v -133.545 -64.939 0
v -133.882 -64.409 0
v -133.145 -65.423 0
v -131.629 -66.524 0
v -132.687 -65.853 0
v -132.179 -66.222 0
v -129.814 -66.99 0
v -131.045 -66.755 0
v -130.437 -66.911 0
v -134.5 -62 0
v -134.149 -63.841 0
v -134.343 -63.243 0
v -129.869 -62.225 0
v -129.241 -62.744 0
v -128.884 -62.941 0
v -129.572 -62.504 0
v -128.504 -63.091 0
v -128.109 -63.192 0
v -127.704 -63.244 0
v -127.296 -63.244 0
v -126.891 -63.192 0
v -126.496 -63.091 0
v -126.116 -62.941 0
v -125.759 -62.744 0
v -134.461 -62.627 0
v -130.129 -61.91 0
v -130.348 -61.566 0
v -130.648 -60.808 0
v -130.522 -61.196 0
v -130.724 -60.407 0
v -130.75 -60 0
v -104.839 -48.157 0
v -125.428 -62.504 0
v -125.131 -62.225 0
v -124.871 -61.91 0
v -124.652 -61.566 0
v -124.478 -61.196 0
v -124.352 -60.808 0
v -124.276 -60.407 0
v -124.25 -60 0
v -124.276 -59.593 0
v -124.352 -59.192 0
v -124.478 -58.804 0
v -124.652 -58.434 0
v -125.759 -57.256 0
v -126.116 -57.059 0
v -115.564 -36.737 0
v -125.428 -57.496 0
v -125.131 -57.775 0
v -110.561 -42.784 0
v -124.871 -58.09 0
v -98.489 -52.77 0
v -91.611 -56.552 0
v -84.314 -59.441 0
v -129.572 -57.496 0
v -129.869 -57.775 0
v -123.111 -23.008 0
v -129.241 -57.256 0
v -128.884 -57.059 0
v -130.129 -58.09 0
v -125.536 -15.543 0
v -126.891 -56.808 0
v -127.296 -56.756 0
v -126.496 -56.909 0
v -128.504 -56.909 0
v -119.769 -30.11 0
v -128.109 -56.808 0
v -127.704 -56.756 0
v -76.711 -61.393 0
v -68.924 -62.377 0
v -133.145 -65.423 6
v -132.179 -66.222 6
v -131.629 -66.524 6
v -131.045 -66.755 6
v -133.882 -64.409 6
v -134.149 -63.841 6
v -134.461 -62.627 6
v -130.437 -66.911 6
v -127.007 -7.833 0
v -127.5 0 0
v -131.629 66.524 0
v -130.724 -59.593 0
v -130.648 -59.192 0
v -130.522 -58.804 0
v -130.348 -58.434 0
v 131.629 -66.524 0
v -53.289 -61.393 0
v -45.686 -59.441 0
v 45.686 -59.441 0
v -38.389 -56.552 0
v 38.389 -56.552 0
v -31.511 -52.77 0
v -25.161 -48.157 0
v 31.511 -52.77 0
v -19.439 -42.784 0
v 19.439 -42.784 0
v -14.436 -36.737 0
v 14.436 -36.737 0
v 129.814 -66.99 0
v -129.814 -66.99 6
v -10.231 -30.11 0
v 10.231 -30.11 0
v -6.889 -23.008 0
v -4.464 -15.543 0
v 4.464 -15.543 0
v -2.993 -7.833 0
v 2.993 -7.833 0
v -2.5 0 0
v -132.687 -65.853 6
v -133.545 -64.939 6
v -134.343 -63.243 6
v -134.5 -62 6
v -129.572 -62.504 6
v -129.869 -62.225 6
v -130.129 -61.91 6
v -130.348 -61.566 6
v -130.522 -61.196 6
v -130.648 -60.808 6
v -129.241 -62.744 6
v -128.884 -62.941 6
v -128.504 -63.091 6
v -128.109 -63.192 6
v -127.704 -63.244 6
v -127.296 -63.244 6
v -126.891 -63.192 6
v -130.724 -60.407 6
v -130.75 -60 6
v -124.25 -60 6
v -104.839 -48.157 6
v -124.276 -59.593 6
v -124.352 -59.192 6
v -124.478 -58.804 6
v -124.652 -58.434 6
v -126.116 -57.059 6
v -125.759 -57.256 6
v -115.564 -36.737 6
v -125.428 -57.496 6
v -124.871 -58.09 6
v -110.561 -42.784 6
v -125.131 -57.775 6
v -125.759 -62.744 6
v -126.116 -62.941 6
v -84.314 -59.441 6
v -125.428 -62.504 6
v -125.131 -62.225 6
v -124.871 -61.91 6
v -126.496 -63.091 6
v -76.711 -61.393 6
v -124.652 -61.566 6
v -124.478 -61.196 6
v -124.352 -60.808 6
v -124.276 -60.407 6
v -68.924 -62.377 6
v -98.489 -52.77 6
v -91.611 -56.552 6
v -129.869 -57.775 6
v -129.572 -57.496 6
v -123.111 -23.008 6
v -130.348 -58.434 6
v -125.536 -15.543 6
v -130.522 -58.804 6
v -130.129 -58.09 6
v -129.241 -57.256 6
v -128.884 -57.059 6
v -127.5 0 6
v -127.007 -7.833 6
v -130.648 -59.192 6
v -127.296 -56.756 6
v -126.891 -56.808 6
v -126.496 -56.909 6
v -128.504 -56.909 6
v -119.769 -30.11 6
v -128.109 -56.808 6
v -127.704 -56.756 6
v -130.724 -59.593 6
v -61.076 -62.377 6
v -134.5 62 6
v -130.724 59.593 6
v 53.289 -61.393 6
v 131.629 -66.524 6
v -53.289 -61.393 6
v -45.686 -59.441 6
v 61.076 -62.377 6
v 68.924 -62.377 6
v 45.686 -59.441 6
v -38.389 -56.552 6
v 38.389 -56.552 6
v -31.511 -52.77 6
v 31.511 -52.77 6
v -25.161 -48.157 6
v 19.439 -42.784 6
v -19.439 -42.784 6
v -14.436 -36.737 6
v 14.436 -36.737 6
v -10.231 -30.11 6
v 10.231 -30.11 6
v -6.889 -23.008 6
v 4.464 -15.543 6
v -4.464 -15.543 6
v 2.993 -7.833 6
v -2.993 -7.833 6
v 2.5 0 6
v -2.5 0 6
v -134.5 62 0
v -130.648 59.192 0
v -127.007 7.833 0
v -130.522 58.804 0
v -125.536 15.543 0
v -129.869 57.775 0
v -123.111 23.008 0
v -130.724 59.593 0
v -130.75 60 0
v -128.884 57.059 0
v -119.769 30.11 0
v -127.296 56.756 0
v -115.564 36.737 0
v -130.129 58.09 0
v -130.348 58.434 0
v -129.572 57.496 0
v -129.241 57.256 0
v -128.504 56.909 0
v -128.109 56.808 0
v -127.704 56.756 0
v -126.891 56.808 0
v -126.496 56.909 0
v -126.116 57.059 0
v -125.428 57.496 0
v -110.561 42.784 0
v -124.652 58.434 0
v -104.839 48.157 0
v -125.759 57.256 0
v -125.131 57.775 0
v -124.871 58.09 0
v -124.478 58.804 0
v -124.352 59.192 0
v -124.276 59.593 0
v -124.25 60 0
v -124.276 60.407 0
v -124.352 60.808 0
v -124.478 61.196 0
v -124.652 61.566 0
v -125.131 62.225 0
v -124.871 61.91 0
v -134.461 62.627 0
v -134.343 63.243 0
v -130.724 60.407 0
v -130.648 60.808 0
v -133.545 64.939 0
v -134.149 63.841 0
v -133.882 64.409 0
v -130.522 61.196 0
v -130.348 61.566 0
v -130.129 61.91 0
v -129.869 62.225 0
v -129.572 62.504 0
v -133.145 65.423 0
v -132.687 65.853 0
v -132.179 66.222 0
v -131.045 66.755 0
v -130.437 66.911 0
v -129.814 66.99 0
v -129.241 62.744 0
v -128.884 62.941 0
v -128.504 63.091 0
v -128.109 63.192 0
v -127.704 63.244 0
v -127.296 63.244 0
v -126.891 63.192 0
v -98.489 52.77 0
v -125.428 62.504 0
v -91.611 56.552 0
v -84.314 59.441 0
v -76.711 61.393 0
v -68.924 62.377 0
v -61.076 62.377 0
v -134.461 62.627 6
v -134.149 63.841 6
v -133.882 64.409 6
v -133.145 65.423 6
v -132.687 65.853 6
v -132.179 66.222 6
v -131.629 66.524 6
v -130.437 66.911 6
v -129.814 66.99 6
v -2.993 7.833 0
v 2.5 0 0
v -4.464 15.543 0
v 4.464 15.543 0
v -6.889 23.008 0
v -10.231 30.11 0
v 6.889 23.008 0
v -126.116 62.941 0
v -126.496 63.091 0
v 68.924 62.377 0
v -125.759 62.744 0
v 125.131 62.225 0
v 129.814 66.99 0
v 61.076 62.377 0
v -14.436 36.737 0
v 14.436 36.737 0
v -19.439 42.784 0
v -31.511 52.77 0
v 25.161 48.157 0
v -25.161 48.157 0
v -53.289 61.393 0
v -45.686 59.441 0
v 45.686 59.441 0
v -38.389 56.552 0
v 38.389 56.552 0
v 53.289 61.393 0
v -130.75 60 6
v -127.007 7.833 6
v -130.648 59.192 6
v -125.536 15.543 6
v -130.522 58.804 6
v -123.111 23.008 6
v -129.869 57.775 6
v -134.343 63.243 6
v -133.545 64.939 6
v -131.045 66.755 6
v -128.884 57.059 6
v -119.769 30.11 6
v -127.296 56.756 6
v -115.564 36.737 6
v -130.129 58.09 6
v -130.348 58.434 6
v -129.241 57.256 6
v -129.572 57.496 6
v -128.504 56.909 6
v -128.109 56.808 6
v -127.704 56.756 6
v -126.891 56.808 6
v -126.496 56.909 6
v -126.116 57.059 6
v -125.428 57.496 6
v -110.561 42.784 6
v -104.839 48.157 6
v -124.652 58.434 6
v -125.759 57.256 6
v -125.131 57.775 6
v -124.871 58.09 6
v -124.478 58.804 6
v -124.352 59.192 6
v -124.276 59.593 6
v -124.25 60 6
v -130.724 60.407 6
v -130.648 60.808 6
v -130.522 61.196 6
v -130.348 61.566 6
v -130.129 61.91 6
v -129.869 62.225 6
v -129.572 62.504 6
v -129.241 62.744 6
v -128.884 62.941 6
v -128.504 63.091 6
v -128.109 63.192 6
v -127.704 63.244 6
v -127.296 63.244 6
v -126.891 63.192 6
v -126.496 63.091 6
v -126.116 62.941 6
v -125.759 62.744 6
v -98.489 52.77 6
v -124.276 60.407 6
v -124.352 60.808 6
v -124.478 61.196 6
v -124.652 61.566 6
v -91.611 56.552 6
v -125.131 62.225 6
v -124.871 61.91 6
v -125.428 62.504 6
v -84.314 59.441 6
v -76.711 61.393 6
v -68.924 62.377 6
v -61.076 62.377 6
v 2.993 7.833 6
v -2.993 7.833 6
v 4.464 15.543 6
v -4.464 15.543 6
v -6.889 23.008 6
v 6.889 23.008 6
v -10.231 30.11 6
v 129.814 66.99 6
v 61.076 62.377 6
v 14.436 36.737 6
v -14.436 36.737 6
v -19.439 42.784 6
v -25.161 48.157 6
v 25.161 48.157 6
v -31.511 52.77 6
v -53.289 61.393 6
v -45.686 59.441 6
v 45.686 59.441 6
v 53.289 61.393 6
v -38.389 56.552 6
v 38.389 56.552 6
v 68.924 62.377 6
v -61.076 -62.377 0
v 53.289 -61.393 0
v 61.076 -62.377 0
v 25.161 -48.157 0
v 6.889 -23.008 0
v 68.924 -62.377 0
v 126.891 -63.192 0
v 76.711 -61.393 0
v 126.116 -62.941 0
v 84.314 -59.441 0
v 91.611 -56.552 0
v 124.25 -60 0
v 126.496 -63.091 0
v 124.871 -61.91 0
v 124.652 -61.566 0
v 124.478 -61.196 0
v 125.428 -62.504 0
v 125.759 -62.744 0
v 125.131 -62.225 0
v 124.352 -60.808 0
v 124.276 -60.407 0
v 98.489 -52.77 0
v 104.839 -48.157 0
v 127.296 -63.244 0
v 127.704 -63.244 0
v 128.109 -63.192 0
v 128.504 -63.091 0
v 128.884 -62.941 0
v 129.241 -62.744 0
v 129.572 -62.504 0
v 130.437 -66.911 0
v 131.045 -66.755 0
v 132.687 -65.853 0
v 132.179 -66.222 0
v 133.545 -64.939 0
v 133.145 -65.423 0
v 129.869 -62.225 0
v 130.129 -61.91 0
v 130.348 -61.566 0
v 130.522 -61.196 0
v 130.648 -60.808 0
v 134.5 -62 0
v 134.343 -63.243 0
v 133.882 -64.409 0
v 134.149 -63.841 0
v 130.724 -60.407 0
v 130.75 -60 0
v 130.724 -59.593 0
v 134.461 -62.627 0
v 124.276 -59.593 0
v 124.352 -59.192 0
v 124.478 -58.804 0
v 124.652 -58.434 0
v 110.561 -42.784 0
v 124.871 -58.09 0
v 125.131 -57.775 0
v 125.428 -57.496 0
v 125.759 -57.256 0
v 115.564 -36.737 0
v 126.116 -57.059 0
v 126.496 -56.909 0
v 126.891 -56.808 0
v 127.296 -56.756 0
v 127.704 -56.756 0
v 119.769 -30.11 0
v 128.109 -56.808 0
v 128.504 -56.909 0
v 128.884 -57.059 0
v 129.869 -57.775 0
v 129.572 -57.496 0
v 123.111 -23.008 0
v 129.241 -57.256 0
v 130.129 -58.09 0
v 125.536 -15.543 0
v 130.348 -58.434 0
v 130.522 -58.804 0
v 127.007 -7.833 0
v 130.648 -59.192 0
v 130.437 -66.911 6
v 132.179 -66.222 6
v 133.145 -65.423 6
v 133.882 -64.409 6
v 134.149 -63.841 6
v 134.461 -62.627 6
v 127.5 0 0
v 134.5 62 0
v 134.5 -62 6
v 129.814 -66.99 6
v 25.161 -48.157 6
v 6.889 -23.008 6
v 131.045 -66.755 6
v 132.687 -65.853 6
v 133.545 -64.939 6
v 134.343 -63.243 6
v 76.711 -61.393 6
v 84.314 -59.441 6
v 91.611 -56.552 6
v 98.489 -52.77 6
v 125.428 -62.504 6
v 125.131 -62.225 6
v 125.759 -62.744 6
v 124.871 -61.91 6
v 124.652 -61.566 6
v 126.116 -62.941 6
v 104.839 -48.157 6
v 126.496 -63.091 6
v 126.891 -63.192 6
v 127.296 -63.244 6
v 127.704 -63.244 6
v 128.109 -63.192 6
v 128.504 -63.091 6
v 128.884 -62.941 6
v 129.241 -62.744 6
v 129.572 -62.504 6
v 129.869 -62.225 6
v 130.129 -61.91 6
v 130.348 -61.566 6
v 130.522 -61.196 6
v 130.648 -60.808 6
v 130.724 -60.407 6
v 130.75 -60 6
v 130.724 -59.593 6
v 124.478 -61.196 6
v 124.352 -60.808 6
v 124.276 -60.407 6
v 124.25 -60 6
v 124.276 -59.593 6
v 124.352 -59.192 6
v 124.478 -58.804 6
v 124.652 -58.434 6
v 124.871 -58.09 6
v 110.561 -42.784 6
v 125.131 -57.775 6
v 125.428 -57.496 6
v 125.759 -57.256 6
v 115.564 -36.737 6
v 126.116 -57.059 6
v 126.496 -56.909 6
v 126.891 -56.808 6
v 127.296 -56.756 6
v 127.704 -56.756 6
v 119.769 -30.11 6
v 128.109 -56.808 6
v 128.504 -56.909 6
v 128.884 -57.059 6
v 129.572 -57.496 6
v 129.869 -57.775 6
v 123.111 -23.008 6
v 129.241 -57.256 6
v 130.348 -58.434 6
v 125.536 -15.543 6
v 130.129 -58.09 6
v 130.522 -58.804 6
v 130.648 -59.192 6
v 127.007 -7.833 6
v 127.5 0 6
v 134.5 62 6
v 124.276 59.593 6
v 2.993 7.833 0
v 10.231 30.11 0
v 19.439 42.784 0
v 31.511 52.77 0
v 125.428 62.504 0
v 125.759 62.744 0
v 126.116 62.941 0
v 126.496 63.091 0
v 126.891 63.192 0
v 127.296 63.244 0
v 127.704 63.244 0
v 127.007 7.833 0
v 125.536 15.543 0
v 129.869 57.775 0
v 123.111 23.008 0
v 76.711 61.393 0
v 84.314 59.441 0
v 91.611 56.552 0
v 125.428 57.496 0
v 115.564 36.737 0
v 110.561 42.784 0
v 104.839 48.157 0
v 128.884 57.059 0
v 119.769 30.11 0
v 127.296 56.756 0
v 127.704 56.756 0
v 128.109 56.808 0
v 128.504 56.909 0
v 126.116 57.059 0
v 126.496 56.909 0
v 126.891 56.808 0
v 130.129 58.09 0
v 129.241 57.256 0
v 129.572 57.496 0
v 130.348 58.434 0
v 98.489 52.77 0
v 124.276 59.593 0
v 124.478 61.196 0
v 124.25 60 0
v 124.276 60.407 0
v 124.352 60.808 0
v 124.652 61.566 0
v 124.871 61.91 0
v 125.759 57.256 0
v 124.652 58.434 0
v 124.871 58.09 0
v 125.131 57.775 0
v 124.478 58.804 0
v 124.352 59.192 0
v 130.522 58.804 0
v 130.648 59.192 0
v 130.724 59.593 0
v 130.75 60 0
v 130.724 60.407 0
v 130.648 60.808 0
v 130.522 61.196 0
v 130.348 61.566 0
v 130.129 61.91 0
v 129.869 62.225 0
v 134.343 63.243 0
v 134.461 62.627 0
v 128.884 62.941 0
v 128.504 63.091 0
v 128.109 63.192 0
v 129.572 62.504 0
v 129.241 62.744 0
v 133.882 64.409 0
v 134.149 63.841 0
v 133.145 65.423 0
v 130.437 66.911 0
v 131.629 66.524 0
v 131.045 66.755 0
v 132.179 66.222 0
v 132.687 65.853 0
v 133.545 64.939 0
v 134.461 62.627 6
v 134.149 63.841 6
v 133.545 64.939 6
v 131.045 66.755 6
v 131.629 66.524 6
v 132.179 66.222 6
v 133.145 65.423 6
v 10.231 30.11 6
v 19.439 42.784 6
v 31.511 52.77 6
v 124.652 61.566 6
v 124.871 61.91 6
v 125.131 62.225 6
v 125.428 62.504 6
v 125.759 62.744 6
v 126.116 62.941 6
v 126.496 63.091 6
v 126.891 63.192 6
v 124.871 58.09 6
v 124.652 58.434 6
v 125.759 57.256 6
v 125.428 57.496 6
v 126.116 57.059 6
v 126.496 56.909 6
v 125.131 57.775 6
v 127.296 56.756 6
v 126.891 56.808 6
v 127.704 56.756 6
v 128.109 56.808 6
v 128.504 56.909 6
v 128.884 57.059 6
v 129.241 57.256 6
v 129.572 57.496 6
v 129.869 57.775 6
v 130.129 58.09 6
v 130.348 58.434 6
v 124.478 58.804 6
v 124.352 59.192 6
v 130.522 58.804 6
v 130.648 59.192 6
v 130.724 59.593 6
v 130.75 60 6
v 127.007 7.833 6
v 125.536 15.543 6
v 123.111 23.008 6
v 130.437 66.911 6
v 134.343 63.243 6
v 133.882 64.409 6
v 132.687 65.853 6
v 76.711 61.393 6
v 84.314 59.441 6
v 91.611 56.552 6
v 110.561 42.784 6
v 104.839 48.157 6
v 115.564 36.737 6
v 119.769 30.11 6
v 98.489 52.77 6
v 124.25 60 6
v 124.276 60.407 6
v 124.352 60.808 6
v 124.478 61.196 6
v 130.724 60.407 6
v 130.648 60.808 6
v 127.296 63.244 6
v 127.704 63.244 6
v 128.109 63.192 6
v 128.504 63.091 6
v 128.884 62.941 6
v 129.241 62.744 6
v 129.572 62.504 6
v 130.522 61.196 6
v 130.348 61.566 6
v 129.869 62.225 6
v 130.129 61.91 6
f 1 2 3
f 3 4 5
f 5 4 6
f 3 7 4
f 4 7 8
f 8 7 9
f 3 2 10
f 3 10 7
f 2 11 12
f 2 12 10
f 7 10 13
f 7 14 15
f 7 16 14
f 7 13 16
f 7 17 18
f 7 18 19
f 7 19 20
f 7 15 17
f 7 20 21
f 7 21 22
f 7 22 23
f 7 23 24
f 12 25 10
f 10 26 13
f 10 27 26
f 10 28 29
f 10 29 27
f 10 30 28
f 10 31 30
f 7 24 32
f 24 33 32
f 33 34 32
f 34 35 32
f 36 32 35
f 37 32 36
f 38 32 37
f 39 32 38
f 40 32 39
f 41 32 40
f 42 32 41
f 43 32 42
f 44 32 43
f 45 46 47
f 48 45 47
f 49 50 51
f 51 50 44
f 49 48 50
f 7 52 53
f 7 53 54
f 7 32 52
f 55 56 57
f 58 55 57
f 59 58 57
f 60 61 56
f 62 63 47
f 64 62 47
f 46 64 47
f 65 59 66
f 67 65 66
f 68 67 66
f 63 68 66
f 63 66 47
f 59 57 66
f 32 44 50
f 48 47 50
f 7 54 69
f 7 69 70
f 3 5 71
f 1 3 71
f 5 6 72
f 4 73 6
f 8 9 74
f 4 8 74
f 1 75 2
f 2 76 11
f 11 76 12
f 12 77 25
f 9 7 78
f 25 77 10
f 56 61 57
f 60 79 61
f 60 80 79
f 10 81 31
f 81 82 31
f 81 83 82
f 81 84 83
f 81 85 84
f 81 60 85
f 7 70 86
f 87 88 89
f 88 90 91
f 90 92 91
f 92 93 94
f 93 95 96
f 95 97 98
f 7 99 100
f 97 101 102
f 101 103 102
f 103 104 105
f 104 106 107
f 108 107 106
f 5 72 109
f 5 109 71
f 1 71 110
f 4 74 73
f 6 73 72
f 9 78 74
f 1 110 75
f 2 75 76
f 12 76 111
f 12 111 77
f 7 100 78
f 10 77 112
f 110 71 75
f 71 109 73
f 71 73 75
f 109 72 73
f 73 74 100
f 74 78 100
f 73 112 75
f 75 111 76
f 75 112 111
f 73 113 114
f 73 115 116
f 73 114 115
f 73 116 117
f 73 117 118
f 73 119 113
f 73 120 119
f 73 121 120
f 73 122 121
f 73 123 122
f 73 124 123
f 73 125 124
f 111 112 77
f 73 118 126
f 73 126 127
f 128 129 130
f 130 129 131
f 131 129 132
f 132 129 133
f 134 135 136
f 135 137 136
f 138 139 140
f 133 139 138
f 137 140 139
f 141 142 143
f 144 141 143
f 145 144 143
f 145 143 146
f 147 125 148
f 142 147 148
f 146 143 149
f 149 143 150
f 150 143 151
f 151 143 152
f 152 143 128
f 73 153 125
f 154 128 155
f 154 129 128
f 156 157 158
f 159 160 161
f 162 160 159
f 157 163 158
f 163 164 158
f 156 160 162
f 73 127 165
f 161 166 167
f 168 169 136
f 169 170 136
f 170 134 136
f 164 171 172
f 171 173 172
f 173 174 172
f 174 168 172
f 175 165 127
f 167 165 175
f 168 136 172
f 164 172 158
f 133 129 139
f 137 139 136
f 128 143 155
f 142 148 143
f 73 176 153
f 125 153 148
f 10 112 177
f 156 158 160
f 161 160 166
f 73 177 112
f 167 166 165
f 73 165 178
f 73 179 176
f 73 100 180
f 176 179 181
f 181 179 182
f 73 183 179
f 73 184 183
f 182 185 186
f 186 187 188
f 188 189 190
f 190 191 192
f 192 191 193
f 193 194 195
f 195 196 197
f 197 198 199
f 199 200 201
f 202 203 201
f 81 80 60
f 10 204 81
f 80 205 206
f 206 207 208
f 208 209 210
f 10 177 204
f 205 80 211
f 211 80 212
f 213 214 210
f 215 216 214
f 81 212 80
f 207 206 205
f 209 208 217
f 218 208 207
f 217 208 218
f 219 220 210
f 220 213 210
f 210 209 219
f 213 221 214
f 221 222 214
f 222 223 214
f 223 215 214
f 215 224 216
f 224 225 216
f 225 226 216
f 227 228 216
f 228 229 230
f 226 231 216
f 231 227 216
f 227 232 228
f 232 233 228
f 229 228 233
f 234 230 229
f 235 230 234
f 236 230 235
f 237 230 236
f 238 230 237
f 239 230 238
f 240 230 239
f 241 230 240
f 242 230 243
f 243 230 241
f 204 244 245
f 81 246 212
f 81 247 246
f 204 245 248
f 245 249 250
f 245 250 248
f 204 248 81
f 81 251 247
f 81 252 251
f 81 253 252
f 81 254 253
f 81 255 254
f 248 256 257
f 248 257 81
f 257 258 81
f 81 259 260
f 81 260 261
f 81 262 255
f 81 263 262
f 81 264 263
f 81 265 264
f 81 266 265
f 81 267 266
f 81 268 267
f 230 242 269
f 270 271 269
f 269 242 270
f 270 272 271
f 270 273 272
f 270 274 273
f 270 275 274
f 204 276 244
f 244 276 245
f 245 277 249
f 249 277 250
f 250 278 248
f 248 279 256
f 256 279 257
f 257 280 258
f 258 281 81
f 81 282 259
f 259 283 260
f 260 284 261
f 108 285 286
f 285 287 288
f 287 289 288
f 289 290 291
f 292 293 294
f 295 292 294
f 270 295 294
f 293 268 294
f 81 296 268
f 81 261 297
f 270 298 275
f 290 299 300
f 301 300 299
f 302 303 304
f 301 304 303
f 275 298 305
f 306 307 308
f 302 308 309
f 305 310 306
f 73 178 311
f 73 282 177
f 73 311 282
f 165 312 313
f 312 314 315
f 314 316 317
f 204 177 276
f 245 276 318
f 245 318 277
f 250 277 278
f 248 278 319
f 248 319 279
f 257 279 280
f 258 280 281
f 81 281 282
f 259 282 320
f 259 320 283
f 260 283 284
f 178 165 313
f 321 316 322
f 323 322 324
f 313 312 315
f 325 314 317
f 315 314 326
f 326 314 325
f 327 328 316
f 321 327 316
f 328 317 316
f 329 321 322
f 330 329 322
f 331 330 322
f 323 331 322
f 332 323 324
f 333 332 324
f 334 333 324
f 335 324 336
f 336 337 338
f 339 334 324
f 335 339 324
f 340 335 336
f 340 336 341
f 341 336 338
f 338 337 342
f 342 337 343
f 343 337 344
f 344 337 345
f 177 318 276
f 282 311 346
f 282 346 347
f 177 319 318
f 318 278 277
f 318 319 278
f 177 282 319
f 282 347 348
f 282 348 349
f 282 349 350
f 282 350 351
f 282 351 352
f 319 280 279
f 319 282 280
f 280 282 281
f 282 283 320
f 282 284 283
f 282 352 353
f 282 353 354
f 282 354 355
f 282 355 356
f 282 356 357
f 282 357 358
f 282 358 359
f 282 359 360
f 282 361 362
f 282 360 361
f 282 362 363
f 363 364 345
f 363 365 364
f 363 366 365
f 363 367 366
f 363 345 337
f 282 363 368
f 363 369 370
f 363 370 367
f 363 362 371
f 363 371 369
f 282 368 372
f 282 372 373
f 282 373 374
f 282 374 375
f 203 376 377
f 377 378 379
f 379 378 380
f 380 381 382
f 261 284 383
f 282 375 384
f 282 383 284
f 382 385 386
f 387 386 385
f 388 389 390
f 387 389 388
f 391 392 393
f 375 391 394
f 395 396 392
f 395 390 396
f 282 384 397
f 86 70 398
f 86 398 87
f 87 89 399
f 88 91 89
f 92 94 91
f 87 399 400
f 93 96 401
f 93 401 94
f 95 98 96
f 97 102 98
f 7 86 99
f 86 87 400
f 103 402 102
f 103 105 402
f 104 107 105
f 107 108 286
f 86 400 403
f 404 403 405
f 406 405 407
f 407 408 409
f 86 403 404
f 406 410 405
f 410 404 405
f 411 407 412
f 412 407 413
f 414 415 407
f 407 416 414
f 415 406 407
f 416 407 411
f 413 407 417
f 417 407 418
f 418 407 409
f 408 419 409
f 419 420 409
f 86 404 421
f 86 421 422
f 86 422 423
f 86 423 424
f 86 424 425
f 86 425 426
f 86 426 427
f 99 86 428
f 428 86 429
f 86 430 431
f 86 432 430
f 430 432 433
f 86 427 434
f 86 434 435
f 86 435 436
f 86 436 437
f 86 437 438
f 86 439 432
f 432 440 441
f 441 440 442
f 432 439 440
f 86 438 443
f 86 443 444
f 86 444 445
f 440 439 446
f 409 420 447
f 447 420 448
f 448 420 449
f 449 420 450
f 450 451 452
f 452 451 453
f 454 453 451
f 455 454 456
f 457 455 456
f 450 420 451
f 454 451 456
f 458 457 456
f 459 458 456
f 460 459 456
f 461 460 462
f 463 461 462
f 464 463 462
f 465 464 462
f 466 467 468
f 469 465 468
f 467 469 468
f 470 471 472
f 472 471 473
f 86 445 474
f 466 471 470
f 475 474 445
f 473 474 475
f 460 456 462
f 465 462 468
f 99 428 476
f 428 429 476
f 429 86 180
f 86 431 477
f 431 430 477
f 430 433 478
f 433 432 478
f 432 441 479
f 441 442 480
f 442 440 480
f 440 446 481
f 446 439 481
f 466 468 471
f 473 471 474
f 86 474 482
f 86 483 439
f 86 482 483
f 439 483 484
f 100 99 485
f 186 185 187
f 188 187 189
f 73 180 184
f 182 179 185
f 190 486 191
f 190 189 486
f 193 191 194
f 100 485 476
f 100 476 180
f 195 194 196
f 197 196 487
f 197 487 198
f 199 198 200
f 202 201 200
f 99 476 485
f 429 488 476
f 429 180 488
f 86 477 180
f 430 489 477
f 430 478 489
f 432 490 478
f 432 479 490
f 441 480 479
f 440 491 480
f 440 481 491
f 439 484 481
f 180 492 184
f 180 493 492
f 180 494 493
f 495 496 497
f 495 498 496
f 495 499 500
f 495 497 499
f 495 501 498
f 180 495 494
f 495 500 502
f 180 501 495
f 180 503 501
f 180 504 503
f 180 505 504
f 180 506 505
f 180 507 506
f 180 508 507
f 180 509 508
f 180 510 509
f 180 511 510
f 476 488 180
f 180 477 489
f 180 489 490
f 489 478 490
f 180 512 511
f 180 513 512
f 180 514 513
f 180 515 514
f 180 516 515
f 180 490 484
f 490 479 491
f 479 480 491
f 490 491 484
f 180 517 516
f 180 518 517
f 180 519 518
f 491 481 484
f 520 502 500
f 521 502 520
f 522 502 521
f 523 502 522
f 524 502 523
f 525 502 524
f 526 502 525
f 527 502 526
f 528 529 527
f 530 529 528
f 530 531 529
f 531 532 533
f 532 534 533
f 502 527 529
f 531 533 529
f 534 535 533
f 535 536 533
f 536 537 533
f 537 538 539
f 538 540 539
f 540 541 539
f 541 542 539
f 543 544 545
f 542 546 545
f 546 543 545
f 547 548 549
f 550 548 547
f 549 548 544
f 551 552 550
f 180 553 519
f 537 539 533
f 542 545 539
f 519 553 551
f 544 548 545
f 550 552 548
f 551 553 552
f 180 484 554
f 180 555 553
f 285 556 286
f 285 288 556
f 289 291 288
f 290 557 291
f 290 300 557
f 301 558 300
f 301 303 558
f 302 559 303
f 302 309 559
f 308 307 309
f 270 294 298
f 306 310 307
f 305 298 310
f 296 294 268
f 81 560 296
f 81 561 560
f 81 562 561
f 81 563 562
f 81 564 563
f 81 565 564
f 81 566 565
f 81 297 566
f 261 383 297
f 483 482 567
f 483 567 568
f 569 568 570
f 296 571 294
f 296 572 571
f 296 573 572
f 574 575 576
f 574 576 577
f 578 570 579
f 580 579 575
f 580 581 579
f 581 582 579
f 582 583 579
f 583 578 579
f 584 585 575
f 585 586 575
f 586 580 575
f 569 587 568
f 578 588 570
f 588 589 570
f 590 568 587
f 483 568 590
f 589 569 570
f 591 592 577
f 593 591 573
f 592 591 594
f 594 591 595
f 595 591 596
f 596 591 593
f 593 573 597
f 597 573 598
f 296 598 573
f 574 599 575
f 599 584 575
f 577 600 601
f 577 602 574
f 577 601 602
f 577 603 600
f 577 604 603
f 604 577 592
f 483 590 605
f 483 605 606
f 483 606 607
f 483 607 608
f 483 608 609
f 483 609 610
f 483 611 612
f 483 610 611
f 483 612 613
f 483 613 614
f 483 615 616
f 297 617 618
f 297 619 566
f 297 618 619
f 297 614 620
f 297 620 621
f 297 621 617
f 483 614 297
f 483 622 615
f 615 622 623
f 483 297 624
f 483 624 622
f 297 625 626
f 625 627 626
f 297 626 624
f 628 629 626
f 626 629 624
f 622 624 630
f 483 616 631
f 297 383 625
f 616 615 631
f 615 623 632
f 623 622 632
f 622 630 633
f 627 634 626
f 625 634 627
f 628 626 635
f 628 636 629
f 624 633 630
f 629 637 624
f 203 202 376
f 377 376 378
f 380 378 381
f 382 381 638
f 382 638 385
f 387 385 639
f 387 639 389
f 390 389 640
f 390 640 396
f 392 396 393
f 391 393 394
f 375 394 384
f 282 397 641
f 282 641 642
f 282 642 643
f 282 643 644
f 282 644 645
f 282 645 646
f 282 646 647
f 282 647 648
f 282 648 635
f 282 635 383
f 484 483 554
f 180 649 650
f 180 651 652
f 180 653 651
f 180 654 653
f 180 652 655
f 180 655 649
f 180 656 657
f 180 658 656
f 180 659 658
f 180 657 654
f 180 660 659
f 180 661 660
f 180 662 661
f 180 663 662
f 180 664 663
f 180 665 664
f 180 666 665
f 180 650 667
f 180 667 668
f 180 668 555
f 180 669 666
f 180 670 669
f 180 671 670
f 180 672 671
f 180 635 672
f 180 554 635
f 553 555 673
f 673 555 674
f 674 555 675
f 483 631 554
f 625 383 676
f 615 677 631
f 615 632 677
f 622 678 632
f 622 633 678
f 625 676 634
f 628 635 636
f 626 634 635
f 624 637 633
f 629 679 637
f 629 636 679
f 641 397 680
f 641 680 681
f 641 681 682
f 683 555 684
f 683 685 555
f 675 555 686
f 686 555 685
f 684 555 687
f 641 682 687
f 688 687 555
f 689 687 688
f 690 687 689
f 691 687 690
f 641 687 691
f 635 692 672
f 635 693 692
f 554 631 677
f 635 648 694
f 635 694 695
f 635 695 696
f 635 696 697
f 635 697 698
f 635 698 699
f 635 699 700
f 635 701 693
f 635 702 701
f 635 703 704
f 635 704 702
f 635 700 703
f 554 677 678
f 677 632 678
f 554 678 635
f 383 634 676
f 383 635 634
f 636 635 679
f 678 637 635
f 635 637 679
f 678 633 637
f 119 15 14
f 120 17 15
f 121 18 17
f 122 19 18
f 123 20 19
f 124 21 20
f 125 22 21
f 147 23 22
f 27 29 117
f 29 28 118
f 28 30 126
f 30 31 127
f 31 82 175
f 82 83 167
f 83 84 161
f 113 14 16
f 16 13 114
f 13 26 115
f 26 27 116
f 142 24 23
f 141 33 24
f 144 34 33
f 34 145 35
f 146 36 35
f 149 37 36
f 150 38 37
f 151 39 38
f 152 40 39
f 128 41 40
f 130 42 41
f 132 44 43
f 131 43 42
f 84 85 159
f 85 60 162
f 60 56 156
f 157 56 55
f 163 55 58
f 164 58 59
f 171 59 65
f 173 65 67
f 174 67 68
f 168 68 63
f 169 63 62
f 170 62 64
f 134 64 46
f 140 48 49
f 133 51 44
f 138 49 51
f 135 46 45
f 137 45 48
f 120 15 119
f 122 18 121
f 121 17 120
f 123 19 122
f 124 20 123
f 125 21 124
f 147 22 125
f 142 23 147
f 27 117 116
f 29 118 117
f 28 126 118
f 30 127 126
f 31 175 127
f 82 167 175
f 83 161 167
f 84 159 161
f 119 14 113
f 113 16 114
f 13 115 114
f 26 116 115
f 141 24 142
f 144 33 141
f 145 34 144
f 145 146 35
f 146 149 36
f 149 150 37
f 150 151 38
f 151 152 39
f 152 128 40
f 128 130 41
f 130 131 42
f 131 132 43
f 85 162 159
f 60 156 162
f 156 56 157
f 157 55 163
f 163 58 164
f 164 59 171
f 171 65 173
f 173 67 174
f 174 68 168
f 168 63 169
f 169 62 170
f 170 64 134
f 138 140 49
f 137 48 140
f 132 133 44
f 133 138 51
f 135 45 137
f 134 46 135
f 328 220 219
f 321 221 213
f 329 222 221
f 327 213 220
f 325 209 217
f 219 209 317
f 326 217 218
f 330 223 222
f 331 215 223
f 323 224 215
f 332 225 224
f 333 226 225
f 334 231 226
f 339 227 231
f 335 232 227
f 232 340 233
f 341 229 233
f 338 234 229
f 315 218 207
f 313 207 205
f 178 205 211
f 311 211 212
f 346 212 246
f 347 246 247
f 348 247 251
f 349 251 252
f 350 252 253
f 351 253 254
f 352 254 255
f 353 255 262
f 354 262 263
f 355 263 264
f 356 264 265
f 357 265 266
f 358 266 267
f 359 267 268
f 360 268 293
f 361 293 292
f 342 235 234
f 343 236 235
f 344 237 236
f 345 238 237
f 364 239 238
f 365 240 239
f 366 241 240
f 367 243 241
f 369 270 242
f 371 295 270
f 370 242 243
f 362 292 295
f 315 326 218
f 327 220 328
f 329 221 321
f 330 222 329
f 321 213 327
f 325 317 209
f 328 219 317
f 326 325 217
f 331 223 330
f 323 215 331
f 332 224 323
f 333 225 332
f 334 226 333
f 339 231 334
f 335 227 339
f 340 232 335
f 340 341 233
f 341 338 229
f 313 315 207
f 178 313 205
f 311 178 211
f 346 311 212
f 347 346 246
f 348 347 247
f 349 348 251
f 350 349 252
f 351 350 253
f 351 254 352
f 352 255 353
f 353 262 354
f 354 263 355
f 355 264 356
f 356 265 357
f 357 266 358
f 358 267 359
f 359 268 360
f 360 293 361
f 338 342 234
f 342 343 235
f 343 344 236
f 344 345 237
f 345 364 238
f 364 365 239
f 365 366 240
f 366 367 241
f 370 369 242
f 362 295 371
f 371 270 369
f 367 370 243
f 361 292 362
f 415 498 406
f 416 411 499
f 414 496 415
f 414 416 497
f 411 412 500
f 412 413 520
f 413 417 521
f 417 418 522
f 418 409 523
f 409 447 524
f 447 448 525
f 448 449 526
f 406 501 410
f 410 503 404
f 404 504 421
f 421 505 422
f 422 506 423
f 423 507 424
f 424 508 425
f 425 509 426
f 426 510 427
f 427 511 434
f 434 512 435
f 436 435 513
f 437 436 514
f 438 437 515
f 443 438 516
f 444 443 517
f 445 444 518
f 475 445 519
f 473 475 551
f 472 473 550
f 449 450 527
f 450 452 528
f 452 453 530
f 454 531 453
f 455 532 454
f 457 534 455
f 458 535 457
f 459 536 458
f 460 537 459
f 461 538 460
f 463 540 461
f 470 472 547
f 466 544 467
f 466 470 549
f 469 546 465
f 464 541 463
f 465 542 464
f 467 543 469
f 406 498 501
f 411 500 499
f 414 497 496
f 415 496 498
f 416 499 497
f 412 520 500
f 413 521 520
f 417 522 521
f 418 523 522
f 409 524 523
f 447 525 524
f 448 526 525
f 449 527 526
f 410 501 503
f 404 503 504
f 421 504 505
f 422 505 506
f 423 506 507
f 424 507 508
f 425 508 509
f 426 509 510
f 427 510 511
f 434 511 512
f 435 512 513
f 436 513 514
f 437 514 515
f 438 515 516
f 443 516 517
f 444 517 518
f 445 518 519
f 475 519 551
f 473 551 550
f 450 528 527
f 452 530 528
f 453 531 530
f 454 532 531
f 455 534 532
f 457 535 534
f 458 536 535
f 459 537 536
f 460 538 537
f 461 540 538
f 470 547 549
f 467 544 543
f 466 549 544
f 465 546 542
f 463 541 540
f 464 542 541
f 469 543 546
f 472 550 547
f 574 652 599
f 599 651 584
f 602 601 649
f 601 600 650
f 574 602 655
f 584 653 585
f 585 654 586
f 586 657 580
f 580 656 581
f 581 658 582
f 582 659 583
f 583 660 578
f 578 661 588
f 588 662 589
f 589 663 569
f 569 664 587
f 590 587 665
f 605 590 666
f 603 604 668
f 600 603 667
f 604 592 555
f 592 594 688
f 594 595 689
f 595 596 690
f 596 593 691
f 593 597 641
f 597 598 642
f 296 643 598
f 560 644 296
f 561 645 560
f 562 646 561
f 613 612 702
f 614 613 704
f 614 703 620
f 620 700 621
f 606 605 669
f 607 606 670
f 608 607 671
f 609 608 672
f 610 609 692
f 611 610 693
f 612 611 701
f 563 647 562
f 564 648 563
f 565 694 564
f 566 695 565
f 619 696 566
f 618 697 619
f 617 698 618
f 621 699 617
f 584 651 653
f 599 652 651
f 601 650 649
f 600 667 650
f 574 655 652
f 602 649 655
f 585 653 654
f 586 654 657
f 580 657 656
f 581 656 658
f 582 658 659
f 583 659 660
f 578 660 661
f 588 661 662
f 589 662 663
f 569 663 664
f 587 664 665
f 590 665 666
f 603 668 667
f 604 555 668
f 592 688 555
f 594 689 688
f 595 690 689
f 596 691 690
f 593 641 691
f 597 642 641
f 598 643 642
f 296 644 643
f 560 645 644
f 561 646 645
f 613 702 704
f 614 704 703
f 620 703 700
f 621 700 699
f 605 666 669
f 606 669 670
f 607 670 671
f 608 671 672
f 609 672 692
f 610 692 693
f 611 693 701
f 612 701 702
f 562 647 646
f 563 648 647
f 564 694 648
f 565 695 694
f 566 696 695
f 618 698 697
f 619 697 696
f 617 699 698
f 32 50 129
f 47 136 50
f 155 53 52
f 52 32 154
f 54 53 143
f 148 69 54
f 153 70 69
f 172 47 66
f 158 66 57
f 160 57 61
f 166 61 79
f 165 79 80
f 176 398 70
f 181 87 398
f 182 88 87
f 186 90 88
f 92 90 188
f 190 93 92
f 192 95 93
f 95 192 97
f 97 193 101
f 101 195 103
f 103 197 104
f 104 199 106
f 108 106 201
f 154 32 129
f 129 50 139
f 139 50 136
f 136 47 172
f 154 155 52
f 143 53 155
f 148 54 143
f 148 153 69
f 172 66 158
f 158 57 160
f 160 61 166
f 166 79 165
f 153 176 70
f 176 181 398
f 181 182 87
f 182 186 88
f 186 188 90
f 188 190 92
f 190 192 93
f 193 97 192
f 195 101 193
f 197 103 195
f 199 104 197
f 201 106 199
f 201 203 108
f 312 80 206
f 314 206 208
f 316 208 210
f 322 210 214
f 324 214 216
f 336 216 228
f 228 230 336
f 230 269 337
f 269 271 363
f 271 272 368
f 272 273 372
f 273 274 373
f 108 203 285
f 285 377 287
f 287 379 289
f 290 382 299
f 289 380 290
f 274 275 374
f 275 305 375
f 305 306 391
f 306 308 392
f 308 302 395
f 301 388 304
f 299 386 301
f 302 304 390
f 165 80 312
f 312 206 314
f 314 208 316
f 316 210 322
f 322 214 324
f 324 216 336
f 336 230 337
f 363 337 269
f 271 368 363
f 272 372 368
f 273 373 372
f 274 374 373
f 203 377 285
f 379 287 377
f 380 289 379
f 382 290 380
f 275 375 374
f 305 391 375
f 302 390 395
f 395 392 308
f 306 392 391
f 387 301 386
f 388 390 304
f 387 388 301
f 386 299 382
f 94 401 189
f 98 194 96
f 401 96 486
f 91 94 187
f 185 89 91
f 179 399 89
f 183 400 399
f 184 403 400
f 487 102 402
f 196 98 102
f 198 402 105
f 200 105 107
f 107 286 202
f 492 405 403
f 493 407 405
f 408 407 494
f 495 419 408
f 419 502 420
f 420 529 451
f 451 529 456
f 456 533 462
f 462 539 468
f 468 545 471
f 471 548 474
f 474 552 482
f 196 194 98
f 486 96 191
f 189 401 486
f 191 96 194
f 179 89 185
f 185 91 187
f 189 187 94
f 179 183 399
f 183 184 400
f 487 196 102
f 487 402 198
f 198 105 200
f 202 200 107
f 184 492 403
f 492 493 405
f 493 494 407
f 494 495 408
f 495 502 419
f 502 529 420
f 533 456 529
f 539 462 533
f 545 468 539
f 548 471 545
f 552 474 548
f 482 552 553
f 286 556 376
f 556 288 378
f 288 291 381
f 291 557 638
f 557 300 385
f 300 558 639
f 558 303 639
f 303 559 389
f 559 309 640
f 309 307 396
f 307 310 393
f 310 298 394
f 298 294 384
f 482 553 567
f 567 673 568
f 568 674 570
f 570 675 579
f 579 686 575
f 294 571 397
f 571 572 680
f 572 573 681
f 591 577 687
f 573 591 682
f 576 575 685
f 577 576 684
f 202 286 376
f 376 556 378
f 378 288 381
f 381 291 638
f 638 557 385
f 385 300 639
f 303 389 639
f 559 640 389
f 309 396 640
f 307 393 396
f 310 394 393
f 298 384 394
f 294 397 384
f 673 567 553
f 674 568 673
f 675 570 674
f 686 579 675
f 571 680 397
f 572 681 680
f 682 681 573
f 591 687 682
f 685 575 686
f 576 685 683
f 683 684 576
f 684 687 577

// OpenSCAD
$fn = 50;

difference() {
	union() {
		hull() {
			translate(v = [-129.5, 62.0, 0]) {
				cylinder(h = 6, r = 5);
			}
			translate(v = [129.5, 62.0, 0]) {
				cylinder(h = 6, r = 5);
			}
			translate(v = [-129.5, -62.0, 0]) {
				cylinder(h = 6, r = 5);
			}
			translate(v = [129.5, -62.0, 0]) {
				cylinder(h = 6, r = 5);
			}
		}
	}
	union() {
		translate(v = [-127.5, -60.0, -100.0]) {
			cylinder(h = 200, r = 3.25);
		}
		translate(v = [-127.5, 60.0, -100.0]) {
			cylinder(h = 200, r = 3.25);
		}
		translate(v = [127.5, -60.0, -100.0]) {
			cylinder(h = 200, r = 3.25);
		}
		translate(v = [127.5, 60.0, -100.0]) {
			cylinder(h = 200, r = 3.25);
		}
		translate(v = [-127.5, -60.0, -100.0]) {
			cylinder(h = 200, r = 1.8);
		}
		translate(v = [-127.5, 60.0, -100.0]) {
			cylinder(h = 200, r = 1.8);
		}
		translate(v = [127.5, -60.0, -100.0]) {
			cylinder(h = 200, r = 1.8);
		}
		translate(v = [127.5, 60.0, -100.0]) {
			cylinder(h = 200, r = 1.8);
		}
		translate(v = [-65.0, 0, 0.0]) {
			cylinder(h = 6, r = 62.5);
		}
		translate(v = [65.0, 0, 0.0]) {
			cylinder(h = 6, r = 62.5);
		}
	}
}
